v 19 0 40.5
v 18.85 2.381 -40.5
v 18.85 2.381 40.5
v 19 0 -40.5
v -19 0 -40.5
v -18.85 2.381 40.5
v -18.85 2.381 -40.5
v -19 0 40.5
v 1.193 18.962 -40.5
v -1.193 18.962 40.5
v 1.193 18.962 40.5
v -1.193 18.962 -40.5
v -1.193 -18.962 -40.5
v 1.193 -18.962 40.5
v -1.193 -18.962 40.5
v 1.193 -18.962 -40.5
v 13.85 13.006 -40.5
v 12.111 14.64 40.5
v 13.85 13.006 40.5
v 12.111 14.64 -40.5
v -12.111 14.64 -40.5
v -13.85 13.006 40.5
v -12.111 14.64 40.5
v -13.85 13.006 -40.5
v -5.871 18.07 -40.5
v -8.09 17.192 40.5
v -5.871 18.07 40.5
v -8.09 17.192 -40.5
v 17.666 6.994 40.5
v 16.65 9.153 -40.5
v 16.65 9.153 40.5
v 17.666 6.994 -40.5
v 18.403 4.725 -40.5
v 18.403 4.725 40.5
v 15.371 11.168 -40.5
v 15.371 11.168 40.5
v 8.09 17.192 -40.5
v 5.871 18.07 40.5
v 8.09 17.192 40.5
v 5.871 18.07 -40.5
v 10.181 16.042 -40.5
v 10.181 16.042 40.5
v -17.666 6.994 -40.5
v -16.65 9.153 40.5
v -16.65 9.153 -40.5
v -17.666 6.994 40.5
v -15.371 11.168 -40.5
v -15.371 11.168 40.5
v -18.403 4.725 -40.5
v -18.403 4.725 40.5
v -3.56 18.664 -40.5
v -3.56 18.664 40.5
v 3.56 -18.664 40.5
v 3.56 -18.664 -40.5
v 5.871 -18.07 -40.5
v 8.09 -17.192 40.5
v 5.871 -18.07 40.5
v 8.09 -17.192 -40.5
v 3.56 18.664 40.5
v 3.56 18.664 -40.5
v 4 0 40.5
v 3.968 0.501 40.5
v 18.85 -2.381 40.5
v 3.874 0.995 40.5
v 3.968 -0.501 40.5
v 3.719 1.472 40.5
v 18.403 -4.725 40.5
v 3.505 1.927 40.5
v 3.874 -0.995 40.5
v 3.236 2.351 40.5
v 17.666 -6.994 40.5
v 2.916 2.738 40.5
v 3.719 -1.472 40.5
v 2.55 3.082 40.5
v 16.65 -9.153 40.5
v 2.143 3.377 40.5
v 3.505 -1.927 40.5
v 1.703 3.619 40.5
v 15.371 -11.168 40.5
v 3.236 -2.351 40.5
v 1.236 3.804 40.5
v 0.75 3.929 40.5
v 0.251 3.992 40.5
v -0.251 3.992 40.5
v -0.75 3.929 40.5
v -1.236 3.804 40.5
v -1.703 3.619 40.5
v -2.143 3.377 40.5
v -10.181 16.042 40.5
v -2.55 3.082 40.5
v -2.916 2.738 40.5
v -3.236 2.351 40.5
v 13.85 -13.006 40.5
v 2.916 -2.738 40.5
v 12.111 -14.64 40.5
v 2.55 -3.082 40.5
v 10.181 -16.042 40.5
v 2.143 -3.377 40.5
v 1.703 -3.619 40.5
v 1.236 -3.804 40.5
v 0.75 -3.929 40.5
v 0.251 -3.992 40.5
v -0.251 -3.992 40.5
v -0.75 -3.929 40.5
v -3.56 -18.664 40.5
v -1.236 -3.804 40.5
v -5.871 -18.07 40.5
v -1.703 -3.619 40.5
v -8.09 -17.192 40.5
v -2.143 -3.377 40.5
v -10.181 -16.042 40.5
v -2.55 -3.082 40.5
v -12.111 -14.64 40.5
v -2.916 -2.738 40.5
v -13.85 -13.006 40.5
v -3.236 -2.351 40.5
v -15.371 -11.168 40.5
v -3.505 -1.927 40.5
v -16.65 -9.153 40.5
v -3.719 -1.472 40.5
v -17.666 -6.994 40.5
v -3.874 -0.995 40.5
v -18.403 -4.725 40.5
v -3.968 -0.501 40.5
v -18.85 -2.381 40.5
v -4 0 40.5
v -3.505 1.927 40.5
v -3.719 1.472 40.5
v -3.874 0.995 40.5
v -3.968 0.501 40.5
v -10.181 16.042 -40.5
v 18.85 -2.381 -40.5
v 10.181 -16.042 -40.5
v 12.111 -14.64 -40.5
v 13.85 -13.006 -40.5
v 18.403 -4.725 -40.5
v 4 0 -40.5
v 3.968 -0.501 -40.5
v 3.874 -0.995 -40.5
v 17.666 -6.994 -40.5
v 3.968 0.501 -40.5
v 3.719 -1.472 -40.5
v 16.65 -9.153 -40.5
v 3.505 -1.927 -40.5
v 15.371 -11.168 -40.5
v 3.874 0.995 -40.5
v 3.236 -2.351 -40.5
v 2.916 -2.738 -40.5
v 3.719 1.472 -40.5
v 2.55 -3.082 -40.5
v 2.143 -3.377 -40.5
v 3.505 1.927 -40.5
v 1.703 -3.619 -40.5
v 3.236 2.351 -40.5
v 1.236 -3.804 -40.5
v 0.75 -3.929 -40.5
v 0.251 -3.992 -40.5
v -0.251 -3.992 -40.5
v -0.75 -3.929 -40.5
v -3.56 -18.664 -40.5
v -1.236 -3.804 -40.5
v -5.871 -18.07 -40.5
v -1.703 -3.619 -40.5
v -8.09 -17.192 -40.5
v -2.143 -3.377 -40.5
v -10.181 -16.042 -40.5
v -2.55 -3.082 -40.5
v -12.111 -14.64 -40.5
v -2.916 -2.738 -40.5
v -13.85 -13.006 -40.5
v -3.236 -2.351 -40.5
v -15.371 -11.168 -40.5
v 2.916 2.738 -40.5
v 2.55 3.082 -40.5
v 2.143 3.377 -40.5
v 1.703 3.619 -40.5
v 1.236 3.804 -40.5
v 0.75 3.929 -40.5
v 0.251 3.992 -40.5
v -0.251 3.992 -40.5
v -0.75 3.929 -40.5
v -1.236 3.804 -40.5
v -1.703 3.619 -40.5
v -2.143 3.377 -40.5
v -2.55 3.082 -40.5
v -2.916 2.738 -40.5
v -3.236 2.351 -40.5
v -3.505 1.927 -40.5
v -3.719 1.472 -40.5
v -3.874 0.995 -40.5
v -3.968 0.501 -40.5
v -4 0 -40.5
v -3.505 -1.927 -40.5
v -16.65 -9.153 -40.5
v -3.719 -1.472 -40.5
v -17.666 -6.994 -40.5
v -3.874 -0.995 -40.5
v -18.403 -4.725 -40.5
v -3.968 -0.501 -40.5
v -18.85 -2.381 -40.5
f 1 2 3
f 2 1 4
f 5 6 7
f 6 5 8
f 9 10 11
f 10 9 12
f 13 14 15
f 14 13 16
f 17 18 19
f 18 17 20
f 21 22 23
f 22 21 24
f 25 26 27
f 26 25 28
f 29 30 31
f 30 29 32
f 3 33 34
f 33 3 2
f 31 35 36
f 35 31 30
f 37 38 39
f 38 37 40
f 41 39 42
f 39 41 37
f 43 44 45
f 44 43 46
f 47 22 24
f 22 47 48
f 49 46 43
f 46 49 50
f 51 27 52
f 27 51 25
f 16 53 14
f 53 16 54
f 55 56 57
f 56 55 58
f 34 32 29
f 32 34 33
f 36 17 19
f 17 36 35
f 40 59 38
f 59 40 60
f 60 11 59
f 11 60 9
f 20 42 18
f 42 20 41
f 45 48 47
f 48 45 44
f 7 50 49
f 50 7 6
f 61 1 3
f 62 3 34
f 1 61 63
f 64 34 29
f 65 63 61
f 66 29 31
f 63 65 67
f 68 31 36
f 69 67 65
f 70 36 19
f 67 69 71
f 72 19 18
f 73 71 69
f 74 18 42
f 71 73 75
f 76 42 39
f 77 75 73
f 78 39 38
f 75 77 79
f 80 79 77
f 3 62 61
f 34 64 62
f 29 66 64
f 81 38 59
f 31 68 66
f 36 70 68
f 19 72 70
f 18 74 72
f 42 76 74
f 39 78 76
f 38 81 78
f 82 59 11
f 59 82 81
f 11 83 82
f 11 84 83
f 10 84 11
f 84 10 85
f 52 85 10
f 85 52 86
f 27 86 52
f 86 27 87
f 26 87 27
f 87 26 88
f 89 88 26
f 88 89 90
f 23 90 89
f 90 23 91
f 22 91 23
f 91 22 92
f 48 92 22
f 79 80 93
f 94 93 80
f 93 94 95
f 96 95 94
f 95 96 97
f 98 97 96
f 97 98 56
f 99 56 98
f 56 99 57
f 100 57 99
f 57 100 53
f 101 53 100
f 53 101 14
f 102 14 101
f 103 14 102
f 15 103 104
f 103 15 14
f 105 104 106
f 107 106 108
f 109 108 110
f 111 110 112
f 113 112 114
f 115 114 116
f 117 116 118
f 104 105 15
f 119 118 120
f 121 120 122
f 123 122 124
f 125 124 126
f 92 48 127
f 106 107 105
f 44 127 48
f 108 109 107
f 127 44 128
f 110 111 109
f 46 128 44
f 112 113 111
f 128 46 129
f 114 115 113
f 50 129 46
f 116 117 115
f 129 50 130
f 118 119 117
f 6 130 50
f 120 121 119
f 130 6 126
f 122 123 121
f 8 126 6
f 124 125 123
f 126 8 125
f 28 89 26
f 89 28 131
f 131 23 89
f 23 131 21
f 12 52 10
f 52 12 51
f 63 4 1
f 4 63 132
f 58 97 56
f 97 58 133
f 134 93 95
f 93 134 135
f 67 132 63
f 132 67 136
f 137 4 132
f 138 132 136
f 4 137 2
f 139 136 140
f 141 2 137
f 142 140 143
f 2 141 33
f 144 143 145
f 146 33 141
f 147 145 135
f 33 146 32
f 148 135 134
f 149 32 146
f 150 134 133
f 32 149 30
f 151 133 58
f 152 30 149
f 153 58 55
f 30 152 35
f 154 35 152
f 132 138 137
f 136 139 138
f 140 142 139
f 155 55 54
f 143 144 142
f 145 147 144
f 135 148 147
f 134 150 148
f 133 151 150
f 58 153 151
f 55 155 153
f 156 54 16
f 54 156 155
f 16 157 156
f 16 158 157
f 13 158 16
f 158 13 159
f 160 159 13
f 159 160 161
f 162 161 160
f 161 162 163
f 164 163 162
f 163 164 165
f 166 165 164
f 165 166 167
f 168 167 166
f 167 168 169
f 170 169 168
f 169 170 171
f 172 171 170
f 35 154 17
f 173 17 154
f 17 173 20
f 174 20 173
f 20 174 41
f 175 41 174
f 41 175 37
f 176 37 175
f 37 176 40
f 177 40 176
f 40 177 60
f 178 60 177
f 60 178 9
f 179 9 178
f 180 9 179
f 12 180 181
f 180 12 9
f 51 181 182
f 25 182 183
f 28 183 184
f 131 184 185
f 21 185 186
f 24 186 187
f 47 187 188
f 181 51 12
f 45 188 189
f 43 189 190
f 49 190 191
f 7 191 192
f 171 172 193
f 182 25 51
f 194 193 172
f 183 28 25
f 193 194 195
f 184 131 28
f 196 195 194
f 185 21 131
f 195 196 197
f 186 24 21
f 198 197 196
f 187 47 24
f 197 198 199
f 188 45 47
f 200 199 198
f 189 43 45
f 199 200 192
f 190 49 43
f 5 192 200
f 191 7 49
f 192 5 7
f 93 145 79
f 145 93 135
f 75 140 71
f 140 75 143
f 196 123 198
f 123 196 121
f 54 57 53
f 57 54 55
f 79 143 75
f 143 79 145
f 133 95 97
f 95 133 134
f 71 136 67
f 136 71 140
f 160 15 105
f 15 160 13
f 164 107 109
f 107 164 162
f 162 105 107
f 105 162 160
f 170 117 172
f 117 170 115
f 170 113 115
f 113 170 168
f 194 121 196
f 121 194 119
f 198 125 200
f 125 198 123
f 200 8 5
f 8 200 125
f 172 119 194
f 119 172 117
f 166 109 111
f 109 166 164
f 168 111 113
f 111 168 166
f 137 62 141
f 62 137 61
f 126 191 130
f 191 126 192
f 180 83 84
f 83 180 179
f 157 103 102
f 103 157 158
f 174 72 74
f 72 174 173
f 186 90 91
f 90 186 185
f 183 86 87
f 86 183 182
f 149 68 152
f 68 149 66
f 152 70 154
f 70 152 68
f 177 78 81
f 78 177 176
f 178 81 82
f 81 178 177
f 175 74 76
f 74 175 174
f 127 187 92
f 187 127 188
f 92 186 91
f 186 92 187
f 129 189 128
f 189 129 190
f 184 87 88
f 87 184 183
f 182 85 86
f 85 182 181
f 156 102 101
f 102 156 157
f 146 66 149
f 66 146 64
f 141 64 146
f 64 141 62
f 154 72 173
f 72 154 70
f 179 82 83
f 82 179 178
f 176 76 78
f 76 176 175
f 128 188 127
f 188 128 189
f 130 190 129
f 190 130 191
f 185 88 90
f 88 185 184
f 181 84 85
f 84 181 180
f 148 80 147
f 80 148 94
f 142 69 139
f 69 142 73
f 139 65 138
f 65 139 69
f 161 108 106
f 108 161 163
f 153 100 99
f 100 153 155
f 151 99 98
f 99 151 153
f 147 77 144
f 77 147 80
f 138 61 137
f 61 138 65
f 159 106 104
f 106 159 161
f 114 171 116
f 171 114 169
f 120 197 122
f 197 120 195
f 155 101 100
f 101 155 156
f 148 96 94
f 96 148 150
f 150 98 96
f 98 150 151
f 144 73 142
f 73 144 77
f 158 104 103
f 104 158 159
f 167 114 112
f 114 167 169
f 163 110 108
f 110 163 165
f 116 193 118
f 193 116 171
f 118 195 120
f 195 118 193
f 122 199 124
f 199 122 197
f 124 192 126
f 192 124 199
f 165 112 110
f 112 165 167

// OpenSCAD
$fn = 50;


difference() {
	union() {
		translate(v = [0, 0, -40.5000000000]) {
			cylinder(h = 81, r = 19.0000000000);
		}
	}
	union() {
		translate(v = [0, 0, -100.0000000000]) {
			cylinder(h = 200, r = 4.0000000000);
		}
	}
}
